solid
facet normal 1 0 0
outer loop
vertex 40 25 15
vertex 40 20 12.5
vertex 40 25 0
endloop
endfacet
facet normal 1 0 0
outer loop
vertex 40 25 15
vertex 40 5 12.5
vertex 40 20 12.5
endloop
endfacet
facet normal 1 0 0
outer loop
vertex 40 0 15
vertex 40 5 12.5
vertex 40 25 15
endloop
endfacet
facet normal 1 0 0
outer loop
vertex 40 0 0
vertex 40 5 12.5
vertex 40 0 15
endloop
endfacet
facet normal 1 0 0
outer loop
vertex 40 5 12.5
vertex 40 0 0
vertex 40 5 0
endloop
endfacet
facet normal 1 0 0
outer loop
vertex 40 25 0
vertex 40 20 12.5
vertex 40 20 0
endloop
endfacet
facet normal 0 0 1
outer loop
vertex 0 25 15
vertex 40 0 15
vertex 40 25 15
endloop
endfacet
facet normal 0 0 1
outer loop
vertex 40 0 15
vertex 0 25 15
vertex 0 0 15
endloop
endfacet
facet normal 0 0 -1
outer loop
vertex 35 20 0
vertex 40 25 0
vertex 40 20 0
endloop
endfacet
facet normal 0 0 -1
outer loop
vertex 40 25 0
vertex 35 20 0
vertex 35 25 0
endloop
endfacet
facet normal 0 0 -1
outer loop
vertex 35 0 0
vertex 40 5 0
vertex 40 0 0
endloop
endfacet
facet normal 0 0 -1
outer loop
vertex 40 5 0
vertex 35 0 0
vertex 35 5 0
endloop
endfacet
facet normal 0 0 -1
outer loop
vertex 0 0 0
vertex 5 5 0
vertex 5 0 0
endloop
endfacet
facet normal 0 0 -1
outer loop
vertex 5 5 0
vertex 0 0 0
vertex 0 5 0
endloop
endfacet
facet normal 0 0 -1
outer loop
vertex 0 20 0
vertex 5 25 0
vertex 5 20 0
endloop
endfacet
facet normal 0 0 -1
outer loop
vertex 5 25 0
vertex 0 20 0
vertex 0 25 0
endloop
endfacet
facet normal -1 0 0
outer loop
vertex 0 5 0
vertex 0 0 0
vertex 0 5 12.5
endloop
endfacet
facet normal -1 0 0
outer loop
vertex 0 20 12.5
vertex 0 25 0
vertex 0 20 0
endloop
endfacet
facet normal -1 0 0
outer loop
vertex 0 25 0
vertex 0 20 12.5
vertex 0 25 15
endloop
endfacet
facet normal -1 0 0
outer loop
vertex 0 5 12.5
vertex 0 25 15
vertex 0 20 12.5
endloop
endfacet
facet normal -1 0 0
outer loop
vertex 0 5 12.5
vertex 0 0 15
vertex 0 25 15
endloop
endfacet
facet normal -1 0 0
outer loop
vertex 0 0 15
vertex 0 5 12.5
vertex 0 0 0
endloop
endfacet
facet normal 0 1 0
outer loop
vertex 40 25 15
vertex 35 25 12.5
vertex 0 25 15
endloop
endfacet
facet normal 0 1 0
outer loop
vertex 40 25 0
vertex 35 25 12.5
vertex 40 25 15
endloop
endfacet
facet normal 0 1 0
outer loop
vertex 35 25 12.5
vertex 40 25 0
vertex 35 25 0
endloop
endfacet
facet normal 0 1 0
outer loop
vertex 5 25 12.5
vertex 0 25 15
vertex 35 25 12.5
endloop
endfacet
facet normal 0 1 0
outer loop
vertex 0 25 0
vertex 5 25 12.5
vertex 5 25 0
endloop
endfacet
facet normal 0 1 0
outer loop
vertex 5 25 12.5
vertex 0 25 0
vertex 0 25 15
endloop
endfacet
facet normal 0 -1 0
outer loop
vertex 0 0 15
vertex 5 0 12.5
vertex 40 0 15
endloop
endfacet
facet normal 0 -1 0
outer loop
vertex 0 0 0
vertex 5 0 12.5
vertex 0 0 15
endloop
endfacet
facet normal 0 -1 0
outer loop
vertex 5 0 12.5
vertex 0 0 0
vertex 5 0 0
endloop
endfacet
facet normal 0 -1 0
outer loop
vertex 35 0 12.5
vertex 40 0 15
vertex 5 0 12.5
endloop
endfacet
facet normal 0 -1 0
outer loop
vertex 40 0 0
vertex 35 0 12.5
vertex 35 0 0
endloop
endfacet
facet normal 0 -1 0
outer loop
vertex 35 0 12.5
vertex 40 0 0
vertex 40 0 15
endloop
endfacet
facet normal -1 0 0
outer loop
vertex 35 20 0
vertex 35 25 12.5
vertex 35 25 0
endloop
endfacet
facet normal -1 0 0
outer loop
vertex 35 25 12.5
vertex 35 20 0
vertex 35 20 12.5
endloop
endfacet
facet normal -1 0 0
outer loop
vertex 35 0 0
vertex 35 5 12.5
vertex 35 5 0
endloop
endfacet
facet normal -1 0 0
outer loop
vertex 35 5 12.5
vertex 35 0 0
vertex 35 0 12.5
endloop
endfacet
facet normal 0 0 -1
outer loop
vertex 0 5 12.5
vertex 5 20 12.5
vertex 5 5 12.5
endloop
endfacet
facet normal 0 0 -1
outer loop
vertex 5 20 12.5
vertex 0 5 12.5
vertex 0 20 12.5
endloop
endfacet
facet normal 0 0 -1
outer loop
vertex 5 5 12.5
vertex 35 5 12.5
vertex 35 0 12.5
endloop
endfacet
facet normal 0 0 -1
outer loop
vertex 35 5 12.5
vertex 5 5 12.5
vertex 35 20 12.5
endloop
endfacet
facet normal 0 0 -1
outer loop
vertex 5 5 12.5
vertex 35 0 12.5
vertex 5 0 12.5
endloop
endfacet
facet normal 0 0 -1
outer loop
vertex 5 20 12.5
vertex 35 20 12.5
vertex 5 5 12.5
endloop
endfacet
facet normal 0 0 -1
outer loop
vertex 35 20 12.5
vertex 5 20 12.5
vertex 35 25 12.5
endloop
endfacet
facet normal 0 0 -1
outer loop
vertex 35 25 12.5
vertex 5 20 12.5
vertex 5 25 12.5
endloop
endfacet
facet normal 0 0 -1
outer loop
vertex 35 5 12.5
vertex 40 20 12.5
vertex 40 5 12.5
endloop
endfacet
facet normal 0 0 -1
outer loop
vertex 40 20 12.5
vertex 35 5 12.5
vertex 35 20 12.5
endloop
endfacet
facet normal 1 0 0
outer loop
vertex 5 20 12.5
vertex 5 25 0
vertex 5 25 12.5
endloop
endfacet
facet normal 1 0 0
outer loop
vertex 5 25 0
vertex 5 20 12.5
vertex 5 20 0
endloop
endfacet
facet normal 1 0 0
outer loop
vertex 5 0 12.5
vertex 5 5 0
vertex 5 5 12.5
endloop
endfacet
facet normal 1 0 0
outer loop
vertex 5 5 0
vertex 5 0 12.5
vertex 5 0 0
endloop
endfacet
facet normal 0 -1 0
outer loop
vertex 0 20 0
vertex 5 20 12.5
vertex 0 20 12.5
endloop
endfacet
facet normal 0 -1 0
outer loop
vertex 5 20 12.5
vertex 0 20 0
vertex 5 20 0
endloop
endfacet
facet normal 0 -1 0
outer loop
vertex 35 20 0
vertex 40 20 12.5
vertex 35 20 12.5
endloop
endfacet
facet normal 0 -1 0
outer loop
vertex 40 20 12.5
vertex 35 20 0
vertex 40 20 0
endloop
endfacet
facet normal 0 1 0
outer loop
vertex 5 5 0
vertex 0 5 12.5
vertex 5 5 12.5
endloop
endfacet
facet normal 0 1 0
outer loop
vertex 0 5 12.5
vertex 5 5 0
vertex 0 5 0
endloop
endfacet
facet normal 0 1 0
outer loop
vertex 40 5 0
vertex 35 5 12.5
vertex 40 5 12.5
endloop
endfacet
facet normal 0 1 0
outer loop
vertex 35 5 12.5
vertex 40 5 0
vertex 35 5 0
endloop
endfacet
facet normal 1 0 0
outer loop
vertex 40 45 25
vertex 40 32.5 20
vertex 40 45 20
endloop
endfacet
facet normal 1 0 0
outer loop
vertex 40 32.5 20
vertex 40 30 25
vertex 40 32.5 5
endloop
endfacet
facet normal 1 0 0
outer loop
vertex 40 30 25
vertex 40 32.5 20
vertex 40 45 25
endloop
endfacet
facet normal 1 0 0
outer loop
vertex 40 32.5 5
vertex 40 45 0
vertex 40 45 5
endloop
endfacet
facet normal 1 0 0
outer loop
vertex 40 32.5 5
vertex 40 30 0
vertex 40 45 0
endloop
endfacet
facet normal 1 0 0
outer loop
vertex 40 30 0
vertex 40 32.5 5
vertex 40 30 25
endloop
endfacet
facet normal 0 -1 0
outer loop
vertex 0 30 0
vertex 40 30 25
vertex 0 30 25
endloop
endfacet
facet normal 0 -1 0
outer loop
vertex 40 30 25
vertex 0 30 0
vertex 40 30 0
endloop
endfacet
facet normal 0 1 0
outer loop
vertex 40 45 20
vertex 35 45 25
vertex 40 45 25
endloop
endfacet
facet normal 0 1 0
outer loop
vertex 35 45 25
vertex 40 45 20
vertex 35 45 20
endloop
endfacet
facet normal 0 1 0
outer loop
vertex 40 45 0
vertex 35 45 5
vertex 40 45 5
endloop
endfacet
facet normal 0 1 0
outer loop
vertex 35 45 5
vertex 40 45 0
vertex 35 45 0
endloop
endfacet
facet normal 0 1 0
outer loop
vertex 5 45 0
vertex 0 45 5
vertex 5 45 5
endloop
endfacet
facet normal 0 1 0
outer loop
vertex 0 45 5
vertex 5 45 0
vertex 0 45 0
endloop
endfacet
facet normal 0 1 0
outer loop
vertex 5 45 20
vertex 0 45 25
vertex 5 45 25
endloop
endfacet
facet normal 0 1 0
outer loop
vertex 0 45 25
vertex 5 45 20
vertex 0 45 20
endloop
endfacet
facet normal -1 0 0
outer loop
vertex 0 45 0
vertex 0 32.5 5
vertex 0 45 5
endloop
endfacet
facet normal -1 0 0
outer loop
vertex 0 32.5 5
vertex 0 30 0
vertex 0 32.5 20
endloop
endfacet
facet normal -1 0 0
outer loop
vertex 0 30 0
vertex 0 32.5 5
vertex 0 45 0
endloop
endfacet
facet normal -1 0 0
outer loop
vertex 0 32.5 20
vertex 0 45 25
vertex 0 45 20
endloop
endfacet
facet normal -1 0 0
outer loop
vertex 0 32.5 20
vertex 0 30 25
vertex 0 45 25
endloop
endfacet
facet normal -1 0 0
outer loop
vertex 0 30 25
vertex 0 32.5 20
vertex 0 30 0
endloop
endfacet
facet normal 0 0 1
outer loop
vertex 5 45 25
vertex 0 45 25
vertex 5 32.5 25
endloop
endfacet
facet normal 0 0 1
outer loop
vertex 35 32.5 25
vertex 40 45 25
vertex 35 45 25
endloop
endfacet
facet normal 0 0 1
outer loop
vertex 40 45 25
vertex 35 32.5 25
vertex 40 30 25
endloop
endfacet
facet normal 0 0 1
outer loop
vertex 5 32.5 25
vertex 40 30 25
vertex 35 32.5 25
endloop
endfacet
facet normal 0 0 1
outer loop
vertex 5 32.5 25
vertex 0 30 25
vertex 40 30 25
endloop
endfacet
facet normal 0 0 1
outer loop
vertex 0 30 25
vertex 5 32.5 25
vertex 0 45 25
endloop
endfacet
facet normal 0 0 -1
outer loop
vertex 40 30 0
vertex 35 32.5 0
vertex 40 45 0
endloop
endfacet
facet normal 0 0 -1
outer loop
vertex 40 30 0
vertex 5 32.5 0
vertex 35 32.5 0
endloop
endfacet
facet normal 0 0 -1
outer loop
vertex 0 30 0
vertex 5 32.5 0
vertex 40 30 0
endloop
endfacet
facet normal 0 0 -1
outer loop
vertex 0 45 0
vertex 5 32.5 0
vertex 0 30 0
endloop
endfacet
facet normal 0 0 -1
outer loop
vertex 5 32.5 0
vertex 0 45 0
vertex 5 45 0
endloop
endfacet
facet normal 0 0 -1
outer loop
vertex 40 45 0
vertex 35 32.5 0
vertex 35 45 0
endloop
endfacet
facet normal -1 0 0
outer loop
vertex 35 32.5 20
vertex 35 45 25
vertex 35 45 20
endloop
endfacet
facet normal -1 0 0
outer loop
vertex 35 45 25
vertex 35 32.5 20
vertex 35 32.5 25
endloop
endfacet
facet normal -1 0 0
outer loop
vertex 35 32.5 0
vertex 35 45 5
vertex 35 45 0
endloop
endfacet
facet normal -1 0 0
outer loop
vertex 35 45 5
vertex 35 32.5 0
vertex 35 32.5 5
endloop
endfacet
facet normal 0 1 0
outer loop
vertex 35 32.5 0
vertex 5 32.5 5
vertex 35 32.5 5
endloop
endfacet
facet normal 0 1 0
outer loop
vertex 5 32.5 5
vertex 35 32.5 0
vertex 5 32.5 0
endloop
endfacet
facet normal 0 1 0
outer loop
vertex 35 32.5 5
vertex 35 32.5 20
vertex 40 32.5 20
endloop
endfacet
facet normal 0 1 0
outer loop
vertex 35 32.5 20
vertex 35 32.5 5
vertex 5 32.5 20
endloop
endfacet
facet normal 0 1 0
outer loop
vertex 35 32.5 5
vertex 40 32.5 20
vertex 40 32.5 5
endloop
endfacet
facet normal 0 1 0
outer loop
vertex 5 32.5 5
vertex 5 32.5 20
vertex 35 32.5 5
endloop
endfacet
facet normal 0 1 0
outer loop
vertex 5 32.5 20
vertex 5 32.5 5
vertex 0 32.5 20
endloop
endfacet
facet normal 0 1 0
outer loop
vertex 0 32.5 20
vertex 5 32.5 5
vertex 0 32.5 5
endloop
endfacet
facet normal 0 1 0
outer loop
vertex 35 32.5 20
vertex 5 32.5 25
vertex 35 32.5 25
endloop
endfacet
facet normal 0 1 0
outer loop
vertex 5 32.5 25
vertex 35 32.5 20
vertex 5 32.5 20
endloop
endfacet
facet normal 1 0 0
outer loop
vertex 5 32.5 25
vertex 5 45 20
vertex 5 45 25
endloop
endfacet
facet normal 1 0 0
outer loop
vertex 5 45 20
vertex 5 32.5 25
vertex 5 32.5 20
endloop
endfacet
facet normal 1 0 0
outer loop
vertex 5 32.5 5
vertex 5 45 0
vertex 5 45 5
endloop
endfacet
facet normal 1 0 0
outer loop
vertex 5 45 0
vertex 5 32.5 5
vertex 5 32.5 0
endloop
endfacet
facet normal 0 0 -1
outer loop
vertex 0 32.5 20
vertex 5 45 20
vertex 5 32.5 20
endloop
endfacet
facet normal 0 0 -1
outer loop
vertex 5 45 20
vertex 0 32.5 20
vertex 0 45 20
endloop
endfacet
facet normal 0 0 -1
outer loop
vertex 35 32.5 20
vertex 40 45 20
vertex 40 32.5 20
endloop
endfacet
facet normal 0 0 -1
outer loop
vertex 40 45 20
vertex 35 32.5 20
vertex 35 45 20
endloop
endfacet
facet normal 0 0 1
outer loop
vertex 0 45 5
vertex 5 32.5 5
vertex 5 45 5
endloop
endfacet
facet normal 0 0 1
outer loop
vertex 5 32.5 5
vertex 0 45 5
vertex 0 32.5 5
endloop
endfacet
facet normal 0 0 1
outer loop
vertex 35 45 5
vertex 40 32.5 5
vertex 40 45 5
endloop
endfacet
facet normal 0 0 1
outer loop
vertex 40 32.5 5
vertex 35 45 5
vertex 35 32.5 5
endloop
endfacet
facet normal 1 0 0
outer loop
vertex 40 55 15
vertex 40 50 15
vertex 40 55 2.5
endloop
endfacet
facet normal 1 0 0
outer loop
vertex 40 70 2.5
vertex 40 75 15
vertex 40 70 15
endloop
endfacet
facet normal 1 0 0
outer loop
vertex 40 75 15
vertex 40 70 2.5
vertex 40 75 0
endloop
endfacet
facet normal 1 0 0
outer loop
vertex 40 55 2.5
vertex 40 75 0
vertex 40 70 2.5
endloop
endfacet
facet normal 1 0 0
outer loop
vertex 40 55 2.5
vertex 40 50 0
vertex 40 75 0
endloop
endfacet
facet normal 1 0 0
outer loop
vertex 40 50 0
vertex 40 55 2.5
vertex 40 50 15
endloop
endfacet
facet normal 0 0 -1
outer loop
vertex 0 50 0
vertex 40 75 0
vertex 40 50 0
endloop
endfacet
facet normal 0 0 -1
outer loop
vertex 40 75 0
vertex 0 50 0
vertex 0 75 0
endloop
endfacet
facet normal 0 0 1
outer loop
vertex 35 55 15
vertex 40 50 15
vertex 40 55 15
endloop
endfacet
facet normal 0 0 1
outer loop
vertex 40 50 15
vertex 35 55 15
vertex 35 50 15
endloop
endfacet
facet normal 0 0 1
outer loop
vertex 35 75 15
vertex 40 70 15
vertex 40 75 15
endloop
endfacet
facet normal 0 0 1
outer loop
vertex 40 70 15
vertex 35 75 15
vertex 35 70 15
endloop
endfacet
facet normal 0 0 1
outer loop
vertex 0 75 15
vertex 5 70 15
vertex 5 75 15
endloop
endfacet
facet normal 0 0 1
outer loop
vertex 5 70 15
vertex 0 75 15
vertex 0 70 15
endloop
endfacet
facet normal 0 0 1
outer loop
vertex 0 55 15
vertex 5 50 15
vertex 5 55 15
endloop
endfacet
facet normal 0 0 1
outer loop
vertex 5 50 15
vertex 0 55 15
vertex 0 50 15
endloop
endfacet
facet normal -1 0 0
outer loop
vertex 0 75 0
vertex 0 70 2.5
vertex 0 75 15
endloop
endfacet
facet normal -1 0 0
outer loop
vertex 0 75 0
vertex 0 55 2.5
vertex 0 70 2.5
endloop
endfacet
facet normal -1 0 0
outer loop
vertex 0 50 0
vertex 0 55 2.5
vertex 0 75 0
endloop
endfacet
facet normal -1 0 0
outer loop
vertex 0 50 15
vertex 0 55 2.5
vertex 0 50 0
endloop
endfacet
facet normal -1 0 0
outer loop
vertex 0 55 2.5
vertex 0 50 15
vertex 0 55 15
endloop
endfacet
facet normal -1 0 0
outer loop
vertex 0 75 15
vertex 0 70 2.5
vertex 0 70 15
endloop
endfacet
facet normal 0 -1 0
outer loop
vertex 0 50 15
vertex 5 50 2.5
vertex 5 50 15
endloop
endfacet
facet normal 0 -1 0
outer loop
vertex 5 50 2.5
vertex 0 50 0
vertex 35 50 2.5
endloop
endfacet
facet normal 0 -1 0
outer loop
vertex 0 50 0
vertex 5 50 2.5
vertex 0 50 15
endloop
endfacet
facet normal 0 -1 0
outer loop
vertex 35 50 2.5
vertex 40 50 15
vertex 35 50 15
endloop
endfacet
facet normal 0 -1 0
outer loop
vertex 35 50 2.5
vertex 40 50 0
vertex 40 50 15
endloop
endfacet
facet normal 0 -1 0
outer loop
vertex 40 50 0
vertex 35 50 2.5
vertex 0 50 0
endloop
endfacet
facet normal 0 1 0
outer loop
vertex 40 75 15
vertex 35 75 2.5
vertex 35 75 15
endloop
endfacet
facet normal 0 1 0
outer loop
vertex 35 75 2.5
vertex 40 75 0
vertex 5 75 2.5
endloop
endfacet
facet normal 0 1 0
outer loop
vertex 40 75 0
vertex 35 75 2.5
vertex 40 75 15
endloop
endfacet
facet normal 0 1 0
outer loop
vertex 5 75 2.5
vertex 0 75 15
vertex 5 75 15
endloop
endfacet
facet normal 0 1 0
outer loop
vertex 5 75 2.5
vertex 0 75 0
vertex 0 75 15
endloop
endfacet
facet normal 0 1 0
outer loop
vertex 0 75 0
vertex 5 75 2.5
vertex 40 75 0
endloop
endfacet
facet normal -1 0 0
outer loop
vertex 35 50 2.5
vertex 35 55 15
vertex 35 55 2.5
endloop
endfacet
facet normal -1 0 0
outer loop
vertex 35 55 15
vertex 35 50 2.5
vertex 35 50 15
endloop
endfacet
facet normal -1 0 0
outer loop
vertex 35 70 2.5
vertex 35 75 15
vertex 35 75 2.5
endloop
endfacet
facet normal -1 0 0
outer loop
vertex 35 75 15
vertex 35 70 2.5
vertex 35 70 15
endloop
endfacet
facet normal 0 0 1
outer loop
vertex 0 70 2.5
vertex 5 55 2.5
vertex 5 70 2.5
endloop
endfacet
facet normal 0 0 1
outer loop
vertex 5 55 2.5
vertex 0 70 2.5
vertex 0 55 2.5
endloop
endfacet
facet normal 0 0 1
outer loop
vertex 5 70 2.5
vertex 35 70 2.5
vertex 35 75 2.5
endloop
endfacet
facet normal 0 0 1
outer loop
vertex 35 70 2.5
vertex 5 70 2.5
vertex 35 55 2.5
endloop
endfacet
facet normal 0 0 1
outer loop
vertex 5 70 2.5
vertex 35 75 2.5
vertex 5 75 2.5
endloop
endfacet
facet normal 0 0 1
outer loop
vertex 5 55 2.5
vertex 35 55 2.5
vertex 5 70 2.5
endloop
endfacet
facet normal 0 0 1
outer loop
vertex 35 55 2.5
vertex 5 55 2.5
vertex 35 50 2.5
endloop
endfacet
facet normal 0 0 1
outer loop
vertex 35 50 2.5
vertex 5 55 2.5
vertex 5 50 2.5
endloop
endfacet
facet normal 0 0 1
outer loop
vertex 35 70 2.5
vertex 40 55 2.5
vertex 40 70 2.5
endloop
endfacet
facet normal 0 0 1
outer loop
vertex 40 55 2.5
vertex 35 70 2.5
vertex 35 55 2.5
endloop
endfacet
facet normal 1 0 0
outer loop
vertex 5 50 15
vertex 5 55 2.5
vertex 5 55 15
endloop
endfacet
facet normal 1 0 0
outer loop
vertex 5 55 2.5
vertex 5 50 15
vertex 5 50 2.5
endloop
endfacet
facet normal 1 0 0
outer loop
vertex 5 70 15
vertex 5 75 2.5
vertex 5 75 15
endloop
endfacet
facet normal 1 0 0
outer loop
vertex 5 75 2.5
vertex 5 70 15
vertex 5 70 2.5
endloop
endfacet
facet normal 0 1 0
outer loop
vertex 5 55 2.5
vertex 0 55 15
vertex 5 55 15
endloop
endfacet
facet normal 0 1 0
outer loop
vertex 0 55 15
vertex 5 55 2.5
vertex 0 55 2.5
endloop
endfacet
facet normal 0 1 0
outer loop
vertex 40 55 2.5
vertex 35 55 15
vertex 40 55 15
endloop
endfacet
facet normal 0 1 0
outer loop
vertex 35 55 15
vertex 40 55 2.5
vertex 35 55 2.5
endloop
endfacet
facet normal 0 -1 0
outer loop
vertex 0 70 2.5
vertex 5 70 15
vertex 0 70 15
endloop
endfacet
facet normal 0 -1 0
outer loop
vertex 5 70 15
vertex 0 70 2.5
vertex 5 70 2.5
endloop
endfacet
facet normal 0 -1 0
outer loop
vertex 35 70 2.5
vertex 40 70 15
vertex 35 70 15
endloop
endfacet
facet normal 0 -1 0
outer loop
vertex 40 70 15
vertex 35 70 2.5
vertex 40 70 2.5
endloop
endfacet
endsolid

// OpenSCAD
module model(){
    difference(){
        cube([40,25,15]);
        translate([5,0,0])cube([30,25,12.5]);
        translate([0,5,0])cube([40,15,12.5]);
    }

}
model();

translate([0,45,0])rotate([90,0,0])model();
translate([0,75,15])rotate([180,0,0])model();

$fn=64;
